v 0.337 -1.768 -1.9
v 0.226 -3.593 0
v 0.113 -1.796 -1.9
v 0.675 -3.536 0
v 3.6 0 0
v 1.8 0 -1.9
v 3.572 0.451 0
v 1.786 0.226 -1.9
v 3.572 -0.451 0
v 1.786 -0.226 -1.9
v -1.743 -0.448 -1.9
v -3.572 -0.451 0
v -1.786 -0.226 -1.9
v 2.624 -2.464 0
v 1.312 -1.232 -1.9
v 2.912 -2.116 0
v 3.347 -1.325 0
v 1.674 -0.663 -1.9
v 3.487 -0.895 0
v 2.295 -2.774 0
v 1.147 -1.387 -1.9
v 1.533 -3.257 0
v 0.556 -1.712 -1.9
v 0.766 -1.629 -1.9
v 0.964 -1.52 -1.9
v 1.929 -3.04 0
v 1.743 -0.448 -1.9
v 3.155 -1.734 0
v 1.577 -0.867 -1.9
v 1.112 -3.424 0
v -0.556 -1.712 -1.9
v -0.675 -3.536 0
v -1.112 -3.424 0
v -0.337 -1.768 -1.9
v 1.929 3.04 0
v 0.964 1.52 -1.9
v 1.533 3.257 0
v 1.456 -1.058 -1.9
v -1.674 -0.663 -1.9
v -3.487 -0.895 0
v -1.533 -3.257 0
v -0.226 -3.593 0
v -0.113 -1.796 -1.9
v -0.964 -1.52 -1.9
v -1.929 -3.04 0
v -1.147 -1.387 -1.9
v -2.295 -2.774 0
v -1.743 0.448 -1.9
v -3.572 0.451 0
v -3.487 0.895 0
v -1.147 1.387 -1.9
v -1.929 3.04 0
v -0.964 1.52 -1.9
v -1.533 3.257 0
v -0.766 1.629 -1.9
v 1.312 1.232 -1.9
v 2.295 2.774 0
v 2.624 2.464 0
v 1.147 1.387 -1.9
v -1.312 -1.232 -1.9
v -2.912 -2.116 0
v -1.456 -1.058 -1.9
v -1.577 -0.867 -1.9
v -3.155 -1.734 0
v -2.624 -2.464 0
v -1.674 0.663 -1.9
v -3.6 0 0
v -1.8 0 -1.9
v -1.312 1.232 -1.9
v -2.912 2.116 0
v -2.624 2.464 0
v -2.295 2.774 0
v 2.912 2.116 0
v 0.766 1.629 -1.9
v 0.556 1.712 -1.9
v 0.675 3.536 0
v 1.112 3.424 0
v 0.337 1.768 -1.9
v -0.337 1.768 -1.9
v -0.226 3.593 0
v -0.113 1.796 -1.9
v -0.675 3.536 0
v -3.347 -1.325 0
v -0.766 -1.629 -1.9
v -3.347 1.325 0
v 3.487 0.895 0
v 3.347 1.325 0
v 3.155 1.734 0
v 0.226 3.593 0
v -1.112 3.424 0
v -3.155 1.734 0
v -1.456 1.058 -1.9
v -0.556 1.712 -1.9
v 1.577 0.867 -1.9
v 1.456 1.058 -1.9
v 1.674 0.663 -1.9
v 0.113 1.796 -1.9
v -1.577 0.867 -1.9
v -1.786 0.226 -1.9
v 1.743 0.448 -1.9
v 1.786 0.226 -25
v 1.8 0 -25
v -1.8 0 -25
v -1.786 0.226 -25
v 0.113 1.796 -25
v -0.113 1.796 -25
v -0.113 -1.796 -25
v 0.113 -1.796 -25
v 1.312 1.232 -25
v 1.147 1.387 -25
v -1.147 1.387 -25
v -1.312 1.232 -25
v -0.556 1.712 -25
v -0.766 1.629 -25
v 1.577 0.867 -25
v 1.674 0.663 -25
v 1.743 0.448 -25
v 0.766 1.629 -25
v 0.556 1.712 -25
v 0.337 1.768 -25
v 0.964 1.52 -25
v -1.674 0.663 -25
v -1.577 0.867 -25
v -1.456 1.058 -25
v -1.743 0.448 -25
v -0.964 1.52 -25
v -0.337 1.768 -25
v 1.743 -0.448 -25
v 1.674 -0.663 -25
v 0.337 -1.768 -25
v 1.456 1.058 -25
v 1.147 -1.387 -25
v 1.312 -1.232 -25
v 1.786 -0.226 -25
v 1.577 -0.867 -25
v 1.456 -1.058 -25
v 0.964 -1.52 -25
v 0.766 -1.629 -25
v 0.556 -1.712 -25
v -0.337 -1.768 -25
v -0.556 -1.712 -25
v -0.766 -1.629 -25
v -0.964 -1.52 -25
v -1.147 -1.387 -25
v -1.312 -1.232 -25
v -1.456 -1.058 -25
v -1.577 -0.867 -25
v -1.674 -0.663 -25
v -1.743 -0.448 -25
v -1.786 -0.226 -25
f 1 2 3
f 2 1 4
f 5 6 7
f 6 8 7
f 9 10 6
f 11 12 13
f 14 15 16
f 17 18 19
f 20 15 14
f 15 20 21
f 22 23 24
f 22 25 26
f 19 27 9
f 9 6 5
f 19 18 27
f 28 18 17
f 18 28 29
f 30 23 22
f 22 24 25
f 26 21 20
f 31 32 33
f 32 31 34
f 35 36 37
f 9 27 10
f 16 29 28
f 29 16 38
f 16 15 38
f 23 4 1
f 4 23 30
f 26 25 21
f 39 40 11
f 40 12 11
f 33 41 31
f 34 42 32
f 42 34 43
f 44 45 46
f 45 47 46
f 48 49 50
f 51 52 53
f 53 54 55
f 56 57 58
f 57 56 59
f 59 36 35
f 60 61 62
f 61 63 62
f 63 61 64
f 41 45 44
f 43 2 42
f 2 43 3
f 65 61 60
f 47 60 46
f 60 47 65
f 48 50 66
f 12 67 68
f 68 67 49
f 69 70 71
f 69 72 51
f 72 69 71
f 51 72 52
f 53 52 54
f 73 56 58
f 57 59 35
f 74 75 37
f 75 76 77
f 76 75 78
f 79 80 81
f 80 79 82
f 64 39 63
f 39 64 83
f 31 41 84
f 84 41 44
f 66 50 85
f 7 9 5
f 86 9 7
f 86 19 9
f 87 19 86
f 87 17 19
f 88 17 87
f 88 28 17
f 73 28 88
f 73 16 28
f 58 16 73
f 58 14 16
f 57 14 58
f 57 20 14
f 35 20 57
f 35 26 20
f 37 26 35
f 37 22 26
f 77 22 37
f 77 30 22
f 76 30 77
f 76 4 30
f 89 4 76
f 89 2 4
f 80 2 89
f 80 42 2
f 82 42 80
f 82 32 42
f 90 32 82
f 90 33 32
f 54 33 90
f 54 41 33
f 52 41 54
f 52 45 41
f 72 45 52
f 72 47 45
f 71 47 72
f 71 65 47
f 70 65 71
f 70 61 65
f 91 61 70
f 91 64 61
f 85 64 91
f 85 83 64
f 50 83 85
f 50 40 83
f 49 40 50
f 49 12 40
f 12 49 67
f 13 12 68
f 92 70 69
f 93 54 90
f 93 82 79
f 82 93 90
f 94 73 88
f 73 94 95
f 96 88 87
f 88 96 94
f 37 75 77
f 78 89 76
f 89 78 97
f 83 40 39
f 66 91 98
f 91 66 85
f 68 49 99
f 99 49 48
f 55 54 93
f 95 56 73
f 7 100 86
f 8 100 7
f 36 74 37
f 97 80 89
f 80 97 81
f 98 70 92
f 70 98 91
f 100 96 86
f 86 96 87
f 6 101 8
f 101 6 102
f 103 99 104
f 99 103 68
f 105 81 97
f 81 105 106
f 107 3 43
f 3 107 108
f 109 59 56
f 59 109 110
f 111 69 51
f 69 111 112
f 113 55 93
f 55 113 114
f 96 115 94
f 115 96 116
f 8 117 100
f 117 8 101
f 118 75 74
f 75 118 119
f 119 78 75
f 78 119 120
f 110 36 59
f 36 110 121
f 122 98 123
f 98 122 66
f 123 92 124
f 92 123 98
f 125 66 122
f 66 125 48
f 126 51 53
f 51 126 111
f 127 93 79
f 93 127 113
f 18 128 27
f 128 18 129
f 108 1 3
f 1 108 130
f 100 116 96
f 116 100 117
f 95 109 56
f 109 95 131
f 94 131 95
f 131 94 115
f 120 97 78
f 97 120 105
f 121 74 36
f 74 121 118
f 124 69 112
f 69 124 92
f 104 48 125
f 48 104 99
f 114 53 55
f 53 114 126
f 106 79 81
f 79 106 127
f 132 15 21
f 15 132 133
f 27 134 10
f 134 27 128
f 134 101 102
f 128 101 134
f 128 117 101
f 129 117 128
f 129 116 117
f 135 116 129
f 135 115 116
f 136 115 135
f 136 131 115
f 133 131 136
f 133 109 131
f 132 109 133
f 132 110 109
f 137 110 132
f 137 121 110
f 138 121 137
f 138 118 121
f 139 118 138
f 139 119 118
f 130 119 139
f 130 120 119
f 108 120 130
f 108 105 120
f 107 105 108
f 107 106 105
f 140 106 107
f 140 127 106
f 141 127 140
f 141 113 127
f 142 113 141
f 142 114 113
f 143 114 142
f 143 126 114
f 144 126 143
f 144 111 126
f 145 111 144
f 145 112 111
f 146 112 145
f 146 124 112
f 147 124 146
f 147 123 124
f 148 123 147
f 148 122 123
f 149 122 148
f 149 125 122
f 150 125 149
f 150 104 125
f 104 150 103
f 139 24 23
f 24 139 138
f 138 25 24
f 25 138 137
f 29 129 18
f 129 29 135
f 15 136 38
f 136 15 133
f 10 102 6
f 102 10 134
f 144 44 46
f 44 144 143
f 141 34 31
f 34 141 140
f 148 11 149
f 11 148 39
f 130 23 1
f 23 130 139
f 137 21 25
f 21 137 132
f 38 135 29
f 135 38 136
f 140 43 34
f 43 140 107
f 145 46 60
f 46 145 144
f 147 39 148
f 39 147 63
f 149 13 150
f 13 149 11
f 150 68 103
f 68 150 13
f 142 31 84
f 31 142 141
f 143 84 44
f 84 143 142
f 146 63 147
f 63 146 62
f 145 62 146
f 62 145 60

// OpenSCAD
$fn = 50;


difference() {
	union() {
		translate(v = [0, 0, -1.9000000000]) {
			rotate(a = [0, 0, 0]) {
				cylinder(h = 1.9000000000, r1 = 1.8000000000, r2 = 3.6000000000);
			}
		}
		translate(v = [0, 0, -25]) {
			rotate(a = [0, 0, 0]) {
				cylinder(h = 25, r = 1.8000000000);
			}
		}
	}
	union();
}
